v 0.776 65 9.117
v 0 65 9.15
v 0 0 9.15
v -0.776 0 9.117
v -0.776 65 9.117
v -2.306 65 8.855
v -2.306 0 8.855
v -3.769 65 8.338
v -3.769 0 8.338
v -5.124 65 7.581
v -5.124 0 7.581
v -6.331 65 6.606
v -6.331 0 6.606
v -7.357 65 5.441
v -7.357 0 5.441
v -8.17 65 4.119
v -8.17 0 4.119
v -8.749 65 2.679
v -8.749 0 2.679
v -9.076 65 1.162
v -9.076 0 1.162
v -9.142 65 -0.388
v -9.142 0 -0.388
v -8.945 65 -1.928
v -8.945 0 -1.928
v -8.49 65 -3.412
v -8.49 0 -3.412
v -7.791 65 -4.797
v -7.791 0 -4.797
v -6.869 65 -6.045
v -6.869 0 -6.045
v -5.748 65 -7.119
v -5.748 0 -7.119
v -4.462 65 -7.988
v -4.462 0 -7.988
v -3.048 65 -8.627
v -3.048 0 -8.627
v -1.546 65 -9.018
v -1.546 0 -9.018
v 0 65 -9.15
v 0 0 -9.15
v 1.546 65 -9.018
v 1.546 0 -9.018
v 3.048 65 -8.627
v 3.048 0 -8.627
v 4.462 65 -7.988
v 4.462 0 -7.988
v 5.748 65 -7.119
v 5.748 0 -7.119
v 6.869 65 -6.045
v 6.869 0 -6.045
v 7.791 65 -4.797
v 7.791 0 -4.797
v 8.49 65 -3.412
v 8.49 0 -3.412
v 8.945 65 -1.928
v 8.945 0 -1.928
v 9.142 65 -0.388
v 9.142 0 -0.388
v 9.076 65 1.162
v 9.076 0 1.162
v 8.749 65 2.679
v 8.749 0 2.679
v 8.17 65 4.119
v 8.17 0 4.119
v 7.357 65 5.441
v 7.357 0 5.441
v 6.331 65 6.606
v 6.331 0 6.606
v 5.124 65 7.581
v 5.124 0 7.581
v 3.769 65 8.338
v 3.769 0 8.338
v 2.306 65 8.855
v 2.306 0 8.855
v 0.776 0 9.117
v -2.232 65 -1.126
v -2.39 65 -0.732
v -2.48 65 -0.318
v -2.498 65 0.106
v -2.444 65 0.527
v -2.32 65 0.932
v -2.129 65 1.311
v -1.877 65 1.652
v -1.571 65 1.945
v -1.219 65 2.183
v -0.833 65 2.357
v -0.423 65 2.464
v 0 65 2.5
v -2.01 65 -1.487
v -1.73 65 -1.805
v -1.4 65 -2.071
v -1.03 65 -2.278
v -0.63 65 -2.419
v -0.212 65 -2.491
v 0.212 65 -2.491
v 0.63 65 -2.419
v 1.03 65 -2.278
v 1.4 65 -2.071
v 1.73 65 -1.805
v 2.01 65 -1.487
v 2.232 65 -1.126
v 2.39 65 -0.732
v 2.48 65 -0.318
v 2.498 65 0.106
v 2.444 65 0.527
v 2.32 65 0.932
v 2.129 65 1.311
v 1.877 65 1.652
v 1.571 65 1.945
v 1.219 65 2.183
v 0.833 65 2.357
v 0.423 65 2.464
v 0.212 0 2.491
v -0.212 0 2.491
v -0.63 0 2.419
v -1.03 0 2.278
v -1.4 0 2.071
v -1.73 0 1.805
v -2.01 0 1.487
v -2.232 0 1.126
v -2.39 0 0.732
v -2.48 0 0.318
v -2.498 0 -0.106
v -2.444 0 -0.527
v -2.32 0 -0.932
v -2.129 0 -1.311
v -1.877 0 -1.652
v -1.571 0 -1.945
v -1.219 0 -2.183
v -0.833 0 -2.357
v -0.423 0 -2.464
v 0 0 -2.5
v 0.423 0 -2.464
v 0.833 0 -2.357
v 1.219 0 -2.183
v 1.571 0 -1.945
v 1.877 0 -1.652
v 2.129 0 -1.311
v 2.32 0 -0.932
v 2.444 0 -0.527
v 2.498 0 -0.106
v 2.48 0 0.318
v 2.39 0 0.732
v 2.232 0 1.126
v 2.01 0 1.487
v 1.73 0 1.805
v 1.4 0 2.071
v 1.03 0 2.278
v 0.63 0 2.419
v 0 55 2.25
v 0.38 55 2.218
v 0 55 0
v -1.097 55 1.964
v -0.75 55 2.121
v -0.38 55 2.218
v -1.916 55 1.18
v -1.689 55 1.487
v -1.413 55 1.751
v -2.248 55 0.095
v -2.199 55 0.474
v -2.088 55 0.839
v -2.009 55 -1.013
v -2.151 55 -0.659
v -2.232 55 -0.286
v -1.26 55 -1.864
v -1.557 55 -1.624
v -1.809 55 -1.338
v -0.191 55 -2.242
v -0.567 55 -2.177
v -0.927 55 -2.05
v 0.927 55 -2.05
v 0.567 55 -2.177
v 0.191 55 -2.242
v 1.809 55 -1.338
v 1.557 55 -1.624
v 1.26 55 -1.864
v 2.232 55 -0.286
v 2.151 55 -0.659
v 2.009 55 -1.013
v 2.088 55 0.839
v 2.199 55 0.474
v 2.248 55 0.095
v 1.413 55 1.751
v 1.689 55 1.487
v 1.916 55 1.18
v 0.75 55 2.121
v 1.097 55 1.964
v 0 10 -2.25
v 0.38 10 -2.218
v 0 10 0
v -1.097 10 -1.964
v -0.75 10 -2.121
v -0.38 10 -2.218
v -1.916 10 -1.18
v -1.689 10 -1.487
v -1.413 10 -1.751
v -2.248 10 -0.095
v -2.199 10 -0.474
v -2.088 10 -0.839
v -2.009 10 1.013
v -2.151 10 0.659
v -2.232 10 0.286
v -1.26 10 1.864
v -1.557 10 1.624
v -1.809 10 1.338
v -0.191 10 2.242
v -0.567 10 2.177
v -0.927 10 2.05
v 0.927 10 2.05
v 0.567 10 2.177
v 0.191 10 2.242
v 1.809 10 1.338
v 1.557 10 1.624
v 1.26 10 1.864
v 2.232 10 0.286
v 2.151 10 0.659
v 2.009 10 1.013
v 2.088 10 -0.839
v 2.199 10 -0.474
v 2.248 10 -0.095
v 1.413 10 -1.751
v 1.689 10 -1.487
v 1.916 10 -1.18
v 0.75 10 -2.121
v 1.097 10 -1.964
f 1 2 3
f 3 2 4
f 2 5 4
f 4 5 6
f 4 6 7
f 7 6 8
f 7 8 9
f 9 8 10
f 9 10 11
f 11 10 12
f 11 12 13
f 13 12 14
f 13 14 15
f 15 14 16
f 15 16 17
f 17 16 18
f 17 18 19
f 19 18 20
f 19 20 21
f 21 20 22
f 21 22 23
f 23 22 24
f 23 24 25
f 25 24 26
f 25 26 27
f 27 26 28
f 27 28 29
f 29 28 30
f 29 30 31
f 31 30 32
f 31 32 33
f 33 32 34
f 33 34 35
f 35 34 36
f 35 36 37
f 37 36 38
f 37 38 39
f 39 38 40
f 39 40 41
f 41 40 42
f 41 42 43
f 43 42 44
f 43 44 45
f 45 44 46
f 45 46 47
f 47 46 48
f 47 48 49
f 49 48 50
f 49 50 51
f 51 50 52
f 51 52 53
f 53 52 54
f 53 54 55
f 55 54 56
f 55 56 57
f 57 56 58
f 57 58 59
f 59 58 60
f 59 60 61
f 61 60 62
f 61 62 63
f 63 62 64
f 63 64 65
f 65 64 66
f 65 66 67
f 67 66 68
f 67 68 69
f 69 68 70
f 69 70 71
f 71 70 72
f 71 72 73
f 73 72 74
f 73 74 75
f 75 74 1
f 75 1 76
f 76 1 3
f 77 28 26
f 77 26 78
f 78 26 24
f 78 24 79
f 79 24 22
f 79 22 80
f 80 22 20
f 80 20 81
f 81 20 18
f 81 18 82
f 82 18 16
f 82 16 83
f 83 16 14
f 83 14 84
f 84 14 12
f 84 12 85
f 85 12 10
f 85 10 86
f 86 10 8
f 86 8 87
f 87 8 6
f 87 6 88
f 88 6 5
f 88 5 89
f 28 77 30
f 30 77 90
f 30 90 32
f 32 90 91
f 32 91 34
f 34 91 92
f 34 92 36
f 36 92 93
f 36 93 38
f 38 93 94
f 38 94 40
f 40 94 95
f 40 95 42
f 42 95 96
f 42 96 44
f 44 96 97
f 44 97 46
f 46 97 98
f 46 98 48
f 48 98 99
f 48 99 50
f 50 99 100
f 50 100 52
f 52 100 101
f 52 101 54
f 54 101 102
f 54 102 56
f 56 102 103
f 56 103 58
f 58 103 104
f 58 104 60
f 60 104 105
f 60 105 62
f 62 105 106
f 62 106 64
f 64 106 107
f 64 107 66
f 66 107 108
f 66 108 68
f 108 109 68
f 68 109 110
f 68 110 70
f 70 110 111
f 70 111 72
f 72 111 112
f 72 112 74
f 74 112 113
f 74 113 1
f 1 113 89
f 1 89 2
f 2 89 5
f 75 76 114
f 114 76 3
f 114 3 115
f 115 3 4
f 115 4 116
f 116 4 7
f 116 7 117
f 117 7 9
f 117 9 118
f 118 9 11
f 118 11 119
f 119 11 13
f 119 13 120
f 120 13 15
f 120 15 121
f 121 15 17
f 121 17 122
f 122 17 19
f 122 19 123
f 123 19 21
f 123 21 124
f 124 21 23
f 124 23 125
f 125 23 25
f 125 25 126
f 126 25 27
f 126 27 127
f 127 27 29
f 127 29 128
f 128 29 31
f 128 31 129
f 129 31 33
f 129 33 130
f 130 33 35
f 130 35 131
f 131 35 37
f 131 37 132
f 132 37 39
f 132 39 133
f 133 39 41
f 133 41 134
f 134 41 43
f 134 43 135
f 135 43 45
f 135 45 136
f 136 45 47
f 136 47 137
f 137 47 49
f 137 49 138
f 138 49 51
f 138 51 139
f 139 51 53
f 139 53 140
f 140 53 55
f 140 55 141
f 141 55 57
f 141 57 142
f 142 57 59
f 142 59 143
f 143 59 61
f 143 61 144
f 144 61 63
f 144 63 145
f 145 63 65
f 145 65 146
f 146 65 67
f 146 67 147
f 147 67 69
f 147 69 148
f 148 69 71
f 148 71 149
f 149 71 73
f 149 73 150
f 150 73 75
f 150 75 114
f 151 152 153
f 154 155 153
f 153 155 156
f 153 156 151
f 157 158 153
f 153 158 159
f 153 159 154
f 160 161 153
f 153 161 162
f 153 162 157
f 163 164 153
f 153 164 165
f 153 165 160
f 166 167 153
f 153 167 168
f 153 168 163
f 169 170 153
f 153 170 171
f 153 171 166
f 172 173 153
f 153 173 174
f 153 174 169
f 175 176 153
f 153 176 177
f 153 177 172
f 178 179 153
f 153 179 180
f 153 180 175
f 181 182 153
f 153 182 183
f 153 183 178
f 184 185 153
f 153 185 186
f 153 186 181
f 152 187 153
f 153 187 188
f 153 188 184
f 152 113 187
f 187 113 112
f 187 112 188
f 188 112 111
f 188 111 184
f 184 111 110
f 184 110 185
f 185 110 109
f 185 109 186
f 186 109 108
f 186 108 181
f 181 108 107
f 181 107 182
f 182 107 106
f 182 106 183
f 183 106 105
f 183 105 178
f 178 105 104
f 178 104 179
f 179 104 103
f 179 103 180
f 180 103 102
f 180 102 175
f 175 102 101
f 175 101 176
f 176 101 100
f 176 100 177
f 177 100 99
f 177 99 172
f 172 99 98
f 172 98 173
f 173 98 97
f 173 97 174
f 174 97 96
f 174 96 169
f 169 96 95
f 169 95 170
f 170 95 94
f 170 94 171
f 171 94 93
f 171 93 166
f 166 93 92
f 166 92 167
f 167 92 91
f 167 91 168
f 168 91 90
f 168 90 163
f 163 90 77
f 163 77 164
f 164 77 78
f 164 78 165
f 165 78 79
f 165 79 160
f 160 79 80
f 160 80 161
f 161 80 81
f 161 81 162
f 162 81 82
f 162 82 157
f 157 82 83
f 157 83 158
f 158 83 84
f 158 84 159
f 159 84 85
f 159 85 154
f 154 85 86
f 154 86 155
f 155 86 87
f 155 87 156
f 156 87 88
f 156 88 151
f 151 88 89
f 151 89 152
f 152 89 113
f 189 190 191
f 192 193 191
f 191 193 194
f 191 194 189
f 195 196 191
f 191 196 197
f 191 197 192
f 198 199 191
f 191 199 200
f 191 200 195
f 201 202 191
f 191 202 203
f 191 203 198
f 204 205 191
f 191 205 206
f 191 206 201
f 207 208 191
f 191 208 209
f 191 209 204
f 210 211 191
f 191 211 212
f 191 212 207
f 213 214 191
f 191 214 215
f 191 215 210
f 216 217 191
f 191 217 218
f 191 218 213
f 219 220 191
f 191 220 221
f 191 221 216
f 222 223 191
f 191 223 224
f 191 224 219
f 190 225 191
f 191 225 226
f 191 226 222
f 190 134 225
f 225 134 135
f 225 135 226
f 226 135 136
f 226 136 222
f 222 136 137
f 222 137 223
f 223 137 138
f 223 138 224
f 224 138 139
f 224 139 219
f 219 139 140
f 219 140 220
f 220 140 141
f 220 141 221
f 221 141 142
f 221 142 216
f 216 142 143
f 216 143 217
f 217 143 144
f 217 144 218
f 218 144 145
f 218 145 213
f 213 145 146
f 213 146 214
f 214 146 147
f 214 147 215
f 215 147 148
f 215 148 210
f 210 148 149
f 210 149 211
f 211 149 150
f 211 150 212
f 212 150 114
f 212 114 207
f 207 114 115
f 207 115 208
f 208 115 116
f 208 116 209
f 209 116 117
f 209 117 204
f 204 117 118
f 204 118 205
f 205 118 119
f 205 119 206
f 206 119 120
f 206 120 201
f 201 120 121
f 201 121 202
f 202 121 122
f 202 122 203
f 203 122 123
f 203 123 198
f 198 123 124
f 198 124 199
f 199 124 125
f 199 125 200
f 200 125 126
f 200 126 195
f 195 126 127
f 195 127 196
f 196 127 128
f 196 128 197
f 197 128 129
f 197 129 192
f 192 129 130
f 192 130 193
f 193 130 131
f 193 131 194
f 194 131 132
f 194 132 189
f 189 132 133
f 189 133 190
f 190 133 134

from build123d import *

# Parameters (mm, degrees)
SKETCH1_R           = 9.15
BOSS_EXTRUDE1_DEPTH = 65
SKETCH2_R           = 2.5
CUT_EXTRUDE1_DEPTH  = 10
CHAMFER1_SIZE2      = 0.25
CHAMFER1_SIZE       = 10
CUT_EXTRUDE2_START  = -10
SKETCH3_R           = 2.5
CUT_EXTRUDE2_DEPTH  = 10
CHAMFER2_SIZE2      = 0.25
CHAMFER2_SIZE       = 10


with BuildPart() as part:
    # Sketch1 → Boss-Extrude1 (new body)
    with BuildSketch(Plane(origin=(0, 0, 0), x_dir=(1, 0, 0), z_dir=(0, 1, 0))):
        with Locations(Location((0, 0, 0), (0, 0, 270))):
            Circle(SKETCH1_R)
    extrude(amount=BOSS_EXTRUDE1_DEPTH)

    # Sketch2 → Cut-Extrude1 (cut)
    with BuildSketch(Plane(origin=(0, 65, 0), x_dir=(1, 0, 0), z_dir=(0, 1, 0))):
        with Locations(Location((0, 0, 0), (0, 0, 270))):
            Circle(SKETCH2_R)
    extrude(amount=-CUT_EXTRUDE1_DEPTH, mode=Mode.SUBTRACT)

    # Chamfer1
    chamfer1_edges = [part.edges().sort_by_distance(p)[0] for p in [
        (0, 55, -2.5),
    ]]
    chamfer1_side = [part.faces().sort_by_distance(p)[0] for p in [
        (0, 55.005, -2.5),
    ]]
    chamfer(chamfer1_edges, length=CHAMFER1_SIZE - 0.0001, length2=CHAMFER1_SIZE2 - 0.0001, reference=chamfer1_side[0])  # a hair under: the kernel refuses the full size

    # Sketch3 → Cut-Extrude2 (cut)
    with BuildSketch(Plane.XZ.offset(CUT_EXTRUDE2_START)):
        with Locations(Location((0, 0, 0), (0, 0, 270))):
            Circle(SKETCH3_R)
    extrude(amount=CUT_EXTRUDE2_DEPTH, mode=Mode.SUBTRACT)

    # Chamfer2
    chamfer2_edges = [part.edges().sort_by_distance(p)[0] for p in [
        (0, 10, 2.5),
    ]]
    chamfer2_side = [part.faces().sort_by_distance(p)[0] for p in [
        (0, 9.995, 2.5),
    ]]
    chamfer(chamfer2_edges, length=CHAMFER2_SIZE - 0.0001, length2=CHAMFER2_SIZE2 - 0.0001, reference=chamfer2_side[0])  # a hair under: the kernel refuses the full size


solid = part.part
